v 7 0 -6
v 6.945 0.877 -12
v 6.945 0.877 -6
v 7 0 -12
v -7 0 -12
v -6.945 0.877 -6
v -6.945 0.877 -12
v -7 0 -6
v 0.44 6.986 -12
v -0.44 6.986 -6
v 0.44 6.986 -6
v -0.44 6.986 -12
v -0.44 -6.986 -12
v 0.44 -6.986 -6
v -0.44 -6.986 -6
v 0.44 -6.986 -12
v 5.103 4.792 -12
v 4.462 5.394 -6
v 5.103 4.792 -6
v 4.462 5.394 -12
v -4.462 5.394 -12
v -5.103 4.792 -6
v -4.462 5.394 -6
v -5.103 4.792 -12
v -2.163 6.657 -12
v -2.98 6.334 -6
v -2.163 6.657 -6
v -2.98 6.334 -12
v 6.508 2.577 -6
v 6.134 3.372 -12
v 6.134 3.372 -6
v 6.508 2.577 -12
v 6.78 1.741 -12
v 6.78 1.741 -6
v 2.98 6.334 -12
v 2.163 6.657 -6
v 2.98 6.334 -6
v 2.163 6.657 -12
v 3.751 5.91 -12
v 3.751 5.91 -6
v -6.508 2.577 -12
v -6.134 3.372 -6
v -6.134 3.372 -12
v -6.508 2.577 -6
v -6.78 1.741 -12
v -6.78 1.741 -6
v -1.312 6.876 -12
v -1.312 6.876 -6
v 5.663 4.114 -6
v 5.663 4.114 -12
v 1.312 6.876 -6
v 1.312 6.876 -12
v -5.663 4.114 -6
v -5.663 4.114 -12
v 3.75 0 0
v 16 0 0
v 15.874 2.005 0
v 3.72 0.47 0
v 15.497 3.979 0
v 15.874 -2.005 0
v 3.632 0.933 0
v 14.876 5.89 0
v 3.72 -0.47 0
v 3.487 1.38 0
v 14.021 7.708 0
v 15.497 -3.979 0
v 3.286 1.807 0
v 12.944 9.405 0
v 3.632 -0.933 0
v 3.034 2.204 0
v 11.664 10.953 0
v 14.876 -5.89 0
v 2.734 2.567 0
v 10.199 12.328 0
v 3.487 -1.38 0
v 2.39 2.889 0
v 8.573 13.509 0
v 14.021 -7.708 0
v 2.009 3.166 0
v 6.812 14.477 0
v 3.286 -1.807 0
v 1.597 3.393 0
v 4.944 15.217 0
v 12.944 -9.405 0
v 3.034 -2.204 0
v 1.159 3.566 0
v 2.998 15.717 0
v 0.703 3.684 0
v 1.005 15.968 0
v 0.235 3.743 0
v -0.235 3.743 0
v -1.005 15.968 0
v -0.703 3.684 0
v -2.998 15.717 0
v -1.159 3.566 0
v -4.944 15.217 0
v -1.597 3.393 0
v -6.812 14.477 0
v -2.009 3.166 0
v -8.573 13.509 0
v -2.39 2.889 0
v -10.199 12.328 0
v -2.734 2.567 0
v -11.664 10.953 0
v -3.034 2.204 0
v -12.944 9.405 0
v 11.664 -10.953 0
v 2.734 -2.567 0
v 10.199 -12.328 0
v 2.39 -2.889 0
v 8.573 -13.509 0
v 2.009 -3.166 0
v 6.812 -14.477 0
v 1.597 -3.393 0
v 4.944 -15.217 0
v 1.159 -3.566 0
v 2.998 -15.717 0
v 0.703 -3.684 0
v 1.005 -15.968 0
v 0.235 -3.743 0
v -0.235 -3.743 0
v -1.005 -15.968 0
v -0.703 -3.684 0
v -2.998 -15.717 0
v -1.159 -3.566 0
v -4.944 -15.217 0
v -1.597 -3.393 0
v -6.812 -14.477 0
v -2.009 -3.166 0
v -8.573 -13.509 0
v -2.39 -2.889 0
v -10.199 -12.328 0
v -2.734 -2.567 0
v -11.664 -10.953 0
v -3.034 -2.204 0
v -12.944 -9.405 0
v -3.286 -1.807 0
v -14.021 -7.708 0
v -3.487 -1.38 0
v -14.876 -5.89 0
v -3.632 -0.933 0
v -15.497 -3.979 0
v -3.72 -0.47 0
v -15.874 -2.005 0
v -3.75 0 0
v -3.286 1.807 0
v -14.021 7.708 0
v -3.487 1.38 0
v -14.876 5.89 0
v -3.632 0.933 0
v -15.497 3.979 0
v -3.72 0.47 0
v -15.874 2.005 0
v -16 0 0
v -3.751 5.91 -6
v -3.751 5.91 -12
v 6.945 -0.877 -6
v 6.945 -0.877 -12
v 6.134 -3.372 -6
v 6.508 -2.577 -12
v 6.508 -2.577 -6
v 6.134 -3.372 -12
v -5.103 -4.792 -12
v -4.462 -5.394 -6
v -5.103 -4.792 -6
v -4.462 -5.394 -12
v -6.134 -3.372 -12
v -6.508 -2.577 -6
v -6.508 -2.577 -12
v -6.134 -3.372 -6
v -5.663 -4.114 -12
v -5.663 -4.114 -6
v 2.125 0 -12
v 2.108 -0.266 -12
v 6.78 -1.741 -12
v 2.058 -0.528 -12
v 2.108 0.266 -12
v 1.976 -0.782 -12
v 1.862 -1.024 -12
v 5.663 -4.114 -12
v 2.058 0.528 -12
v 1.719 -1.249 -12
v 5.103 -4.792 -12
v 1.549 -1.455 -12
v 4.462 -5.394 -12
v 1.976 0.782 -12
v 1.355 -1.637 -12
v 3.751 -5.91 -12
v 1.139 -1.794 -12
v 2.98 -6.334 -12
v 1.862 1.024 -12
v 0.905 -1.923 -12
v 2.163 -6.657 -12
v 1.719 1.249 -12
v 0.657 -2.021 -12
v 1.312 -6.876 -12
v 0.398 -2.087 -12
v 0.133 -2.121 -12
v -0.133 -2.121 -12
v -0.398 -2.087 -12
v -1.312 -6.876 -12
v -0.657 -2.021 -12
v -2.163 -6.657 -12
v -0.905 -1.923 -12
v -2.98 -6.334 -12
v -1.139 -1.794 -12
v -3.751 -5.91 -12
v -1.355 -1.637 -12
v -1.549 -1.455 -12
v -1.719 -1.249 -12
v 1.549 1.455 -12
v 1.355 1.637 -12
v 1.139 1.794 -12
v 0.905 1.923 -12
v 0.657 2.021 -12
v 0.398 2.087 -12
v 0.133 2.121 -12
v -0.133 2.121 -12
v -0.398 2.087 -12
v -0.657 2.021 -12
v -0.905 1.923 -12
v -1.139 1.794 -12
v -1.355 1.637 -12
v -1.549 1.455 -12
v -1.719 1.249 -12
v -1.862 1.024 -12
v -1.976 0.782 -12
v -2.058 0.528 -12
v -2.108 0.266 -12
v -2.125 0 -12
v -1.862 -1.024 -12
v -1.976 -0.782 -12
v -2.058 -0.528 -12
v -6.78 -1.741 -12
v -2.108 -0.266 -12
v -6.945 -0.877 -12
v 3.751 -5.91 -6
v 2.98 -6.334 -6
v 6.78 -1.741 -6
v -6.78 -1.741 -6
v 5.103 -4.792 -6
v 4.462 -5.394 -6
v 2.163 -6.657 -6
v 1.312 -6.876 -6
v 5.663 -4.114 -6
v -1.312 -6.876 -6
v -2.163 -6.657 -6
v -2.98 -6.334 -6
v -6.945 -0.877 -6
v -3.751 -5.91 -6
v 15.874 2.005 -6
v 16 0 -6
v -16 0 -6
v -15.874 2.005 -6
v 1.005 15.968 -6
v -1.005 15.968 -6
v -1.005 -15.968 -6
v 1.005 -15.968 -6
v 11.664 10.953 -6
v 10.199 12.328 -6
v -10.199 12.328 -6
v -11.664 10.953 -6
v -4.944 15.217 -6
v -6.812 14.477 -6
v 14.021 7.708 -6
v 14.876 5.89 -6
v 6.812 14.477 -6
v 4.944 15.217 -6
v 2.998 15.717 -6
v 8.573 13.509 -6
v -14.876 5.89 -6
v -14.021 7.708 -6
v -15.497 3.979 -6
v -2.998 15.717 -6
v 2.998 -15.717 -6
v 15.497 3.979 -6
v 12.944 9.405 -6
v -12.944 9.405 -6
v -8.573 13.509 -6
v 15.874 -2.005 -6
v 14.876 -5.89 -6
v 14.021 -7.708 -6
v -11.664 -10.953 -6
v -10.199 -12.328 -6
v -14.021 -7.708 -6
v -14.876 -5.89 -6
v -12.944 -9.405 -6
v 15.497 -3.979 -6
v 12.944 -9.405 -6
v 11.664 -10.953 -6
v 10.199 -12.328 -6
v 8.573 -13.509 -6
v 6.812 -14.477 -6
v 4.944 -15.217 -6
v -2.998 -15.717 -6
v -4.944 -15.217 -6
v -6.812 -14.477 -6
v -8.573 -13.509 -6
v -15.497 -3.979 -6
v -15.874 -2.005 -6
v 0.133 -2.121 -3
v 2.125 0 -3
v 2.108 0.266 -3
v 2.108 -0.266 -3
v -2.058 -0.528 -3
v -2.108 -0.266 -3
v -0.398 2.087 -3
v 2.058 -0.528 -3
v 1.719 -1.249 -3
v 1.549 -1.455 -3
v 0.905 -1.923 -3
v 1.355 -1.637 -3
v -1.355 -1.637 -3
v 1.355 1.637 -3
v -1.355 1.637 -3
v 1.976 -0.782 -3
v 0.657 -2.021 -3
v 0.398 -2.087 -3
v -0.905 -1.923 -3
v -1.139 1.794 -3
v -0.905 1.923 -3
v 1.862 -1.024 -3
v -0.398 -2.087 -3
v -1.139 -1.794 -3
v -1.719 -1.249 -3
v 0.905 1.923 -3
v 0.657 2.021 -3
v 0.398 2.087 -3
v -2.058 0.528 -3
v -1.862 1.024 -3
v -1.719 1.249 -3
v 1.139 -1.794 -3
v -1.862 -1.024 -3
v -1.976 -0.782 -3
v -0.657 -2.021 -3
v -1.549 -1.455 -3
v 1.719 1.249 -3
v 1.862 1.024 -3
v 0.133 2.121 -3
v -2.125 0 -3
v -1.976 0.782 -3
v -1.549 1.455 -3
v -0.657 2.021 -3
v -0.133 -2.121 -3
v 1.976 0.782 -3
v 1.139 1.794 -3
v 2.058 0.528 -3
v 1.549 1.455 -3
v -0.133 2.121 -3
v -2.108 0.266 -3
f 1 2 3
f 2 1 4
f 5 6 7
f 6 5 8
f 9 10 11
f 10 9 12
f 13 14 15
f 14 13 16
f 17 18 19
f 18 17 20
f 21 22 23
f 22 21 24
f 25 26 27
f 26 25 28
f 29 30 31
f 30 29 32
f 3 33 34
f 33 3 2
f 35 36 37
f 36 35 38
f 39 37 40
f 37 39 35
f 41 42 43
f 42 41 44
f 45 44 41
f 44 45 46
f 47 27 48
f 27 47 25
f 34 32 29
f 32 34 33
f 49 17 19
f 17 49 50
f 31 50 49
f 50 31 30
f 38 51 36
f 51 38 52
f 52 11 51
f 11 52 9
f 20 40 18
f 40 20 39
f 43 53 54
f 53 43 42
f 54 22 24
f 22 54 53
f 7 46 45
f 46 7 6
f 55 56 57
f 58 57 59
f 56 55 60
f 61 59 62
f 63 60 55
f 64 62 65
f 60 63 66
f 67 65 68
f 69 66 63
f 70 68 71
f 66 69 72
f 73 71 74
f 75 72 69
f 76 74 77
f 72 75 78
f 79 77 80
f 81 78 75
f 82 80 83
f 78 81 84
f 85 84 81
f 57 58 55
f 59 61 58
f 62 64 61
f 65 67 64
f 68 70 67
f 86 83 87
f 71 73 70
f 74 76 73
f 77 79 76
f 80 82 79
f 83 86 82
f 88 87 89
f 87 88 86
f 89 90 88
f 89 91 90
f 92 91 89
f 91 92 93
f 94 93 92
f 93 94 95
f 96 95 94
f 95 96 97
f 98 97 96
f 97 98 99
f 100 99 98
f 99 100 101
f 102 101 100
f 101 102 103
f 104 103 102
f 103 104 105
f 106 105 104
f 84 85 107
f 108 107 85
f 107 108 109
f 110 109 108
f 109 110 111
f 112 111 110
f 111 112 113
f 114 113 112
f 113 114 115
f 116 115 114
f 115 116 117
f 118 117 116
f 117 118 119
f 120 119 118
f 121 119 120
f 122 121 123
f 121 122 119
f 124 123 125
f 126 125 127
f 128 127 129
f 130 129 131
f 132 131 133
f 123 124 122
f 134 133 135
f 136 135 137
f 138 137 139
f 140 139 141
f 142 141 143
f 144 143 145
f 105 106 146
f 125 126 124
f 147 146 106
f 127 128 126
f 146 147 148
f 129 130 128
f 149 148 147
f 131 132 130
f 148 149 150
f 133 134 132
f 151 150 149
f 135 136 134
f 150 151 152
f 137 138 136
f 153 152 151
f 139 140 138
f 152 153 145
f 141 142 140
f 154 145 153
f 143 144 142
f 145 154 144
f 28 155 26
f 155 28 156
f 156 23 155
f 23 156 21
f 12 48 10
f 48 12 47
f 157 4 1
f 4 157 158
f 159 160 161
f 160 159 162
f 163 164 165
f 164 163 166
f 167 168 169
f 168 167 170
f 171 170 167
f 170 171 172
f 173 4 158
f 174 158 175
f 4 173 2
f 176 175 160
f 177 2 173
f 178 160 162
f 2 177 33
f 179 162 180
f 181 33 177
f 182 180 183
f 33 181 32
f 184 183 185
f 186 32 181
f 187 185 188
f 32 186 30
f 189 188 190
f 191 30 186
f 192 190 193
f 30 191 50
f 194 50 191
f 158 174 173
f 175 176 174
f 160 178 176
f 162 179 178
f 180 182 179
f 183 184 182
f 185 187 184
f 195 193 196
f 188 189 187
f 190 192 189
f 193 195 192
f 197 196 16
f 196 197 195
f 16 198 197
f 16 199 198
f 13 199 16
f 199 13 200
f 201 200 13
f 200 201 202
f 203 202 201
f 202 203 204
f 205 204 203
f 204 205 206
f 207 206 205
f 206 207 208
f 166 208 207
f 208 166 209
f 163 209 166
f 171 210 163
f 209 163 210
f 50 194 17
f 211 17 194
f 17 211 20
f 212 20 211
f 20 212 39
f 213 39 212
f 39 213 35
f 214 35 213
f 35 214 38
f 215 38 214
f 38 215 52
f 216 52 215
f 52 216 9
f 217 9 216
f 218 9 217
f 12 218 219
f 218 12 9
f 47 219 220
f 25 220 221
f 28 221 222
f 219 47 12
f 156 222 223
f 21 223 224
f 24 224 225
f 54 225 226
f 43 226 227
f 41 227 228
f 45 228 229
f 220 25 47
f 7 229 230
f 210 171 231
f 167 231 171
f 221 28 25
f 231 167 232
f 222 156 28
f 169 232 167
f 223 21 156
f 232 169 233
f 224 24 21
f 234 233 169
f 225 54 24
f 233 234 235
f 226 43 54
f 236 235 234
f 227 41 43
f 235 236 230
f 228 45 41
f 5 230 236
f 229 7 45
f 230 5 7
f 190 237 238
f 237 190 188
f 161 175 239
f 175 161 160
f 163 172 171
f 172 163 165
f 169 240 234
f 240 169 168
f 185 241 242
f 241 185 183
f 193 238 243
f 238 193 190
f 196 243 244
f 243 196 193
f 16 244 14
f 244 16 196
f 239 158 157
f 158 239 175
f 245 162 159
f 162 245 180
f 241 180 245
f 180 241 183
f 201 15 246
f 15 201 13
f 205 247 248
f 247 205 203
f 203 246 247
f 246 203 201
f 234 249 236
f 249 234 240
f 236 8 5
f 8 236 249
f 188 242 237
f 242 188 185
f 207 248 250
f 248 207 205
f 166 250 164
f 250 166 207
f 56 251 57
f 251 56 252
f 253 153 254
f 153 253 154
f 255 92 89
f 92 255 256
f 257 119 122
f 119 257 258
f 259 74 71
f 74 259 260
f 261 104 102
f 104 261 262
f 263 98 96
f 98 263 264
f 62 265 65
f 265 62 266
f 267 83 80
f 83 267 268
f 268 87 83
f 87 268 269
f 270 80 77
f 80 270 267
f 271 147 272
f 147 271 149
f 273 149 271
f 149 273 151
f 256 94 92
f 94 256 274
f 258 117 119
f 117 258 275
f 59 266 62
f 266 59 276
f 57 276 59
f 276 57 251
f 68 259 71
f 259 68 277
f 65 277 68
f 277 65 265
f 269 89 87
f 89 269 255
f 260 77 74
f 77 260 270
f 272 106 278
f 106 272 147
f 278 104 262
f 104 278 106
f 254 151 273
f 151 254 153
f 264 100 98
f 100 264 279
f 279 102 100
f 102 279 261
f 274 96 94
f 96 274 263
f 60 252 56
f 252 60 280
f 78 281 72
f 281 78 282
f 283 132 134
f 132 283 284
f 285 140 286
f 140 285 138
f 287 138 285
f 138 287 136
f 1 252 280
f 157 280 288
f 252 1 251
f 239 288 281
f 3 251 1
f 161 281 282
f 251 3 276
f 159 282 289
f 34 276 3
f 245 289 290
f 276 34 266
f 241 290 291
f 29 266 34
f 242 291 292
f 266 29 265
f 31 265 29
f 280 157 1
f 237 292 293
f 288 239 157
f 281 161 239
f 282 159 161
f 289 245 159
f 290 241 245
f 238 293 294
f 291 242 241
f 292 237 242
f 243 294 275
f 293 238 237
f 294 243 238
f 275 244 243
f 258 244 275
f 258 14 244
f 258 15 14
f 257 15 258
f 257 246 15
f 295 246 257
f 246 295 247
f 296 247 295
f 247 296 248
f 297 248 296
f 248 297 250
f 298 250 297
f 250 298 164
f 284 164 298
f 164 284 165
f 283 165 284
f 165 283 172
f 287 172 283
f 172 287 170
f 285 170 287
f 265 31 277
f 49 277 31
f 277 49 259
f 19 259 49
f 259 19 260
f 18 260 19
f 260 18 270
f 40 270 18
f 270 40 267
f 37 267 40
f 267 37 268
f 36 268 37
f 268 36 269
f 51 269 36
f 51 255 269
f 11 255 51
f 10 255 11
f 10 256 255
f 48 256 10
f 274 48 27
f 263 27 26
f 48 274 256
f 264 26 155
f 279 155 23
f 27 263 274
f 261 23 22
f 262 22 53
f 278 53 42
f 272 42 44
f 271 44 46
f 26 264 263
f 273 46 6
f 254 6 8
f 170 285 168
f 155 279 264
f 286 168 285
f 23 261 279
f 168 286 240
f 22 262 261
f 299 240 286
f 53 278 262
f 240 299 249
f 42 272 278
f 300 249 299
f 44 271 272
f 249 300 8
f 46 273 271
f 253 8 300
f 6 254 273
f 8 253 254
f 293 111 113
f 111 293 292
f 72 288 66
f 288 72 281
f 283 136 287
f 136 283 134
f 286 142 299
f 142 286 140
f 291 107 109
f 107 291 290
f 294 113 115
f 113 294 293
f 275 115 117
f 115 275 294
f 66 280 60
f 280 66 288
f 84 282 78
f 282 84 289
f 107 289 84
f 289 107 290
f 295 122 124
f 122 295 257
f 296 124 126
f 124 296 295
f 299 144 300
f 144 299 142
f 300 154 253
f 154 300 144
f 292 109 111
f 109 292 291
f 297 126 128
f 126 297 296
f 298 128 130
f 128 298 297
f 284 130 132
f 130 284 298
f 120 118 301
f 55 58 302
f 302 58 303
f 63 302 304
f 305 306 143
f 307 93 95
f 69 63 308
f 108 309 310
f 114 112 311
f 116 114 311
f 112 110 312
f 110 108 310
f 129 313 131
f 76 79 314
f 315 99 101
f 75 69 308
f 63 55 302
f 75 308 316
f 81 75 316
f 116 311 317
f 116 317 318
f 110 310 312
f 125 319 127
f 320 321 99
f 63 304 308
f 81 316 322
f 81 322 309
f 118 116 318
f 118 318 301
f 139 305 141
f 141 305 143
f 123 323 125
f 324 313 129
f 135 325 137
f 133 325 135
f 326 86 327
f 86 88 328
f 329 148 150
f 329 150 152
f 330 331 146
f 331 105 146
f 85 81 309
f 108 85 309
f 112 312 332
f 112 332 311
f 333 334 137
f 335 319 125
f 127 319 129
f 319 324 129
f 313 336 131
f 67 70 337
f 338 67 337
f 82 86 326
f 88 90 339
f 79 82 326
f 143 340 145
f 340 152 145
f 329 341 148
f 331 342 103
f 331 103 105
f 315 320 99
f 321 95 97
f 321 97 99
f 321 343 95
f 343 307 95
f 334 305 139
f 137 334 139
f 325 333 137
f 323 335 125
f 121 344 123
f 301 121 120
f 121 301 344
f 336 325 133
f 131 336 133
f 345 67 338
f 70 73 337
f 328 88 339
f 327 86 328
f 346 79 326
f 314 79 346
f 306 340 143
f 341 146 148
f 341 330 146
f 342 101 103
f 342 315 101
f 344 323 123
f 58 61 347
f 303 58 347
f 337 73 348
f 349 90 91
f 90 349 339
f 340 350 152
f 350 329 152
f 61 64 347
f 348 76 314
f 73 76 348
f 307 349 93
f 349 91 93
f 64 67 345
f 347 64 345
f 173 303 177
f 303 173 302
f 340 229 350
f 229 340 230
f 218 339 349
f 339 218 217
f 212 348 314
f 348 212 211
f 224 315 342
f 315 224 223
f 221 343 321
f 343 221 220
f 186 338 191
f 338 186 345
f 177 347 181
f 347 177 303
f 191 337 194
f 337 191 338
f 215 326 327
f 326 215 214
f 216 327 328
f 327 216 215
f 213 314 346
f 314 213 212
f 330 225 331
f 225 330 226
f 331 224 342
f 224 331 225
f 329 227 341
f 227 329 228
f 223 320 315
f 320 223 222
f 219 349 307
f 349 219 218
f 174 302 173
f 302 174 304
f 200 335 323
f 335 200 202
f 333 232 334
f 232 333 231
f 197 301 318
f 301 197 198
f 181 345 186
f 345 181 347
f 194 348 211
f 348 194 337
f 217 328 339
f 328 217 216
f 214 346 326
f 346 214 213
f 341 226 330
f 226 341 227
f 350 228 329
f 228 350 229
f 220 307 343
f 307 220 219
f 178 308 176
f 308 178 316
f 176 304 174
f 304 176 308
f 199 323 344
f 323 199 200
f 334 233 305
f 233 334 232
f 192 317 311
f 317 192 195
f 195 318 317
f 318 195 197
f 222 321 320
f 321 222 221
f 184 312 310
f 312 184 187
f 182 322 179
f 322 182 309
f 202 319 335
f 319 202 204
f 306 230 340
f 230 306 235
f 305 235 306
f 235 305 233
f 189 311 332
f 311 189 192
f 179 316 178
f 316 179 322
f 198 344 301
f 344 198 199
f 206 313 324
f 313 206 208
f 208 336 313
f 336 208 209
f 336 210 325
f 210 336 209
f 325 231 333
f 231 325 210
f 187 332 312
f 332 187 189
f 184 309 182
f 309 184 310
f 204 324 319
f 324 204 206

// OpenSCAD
$fn = 50;


difference() {
	union() {
		translate(v = [0, 0, -12.0000000000]) {
			cylinder(h = 12, r = 7.0000000000);
		}
		translate(v = [0, 0, -6.0000000000]) {
			cylinder(h = 6, r = 16.0000000000);
		}
	}
	union() {
		translate(v = [0, 0, 0]) {
			rotate(a = [0, 0, 0]) {
				difference() {
					union() {
						#translate(v = [0, 0, -12.0000000000]) {
							cylinder(h = 12, r = 2.0000000000);
						}
						#translate(v = [0, 0, -3]) {
							cylinder(h = 3, r = 7.0000000000, r1 = 2.1250000000, r2 = 3.7500000000);
						}
						#translate(v = [0, 0, -12.0000000000]) {
							cylinder(h = 12, r = 2.1250000000);
						}
						#translate(v = [0, 0, -12.0000000000]) {
							cylinder(h = 12, r = 2.0000000000);
						}
					}
					union();
				}
			}
		}
	}
}
